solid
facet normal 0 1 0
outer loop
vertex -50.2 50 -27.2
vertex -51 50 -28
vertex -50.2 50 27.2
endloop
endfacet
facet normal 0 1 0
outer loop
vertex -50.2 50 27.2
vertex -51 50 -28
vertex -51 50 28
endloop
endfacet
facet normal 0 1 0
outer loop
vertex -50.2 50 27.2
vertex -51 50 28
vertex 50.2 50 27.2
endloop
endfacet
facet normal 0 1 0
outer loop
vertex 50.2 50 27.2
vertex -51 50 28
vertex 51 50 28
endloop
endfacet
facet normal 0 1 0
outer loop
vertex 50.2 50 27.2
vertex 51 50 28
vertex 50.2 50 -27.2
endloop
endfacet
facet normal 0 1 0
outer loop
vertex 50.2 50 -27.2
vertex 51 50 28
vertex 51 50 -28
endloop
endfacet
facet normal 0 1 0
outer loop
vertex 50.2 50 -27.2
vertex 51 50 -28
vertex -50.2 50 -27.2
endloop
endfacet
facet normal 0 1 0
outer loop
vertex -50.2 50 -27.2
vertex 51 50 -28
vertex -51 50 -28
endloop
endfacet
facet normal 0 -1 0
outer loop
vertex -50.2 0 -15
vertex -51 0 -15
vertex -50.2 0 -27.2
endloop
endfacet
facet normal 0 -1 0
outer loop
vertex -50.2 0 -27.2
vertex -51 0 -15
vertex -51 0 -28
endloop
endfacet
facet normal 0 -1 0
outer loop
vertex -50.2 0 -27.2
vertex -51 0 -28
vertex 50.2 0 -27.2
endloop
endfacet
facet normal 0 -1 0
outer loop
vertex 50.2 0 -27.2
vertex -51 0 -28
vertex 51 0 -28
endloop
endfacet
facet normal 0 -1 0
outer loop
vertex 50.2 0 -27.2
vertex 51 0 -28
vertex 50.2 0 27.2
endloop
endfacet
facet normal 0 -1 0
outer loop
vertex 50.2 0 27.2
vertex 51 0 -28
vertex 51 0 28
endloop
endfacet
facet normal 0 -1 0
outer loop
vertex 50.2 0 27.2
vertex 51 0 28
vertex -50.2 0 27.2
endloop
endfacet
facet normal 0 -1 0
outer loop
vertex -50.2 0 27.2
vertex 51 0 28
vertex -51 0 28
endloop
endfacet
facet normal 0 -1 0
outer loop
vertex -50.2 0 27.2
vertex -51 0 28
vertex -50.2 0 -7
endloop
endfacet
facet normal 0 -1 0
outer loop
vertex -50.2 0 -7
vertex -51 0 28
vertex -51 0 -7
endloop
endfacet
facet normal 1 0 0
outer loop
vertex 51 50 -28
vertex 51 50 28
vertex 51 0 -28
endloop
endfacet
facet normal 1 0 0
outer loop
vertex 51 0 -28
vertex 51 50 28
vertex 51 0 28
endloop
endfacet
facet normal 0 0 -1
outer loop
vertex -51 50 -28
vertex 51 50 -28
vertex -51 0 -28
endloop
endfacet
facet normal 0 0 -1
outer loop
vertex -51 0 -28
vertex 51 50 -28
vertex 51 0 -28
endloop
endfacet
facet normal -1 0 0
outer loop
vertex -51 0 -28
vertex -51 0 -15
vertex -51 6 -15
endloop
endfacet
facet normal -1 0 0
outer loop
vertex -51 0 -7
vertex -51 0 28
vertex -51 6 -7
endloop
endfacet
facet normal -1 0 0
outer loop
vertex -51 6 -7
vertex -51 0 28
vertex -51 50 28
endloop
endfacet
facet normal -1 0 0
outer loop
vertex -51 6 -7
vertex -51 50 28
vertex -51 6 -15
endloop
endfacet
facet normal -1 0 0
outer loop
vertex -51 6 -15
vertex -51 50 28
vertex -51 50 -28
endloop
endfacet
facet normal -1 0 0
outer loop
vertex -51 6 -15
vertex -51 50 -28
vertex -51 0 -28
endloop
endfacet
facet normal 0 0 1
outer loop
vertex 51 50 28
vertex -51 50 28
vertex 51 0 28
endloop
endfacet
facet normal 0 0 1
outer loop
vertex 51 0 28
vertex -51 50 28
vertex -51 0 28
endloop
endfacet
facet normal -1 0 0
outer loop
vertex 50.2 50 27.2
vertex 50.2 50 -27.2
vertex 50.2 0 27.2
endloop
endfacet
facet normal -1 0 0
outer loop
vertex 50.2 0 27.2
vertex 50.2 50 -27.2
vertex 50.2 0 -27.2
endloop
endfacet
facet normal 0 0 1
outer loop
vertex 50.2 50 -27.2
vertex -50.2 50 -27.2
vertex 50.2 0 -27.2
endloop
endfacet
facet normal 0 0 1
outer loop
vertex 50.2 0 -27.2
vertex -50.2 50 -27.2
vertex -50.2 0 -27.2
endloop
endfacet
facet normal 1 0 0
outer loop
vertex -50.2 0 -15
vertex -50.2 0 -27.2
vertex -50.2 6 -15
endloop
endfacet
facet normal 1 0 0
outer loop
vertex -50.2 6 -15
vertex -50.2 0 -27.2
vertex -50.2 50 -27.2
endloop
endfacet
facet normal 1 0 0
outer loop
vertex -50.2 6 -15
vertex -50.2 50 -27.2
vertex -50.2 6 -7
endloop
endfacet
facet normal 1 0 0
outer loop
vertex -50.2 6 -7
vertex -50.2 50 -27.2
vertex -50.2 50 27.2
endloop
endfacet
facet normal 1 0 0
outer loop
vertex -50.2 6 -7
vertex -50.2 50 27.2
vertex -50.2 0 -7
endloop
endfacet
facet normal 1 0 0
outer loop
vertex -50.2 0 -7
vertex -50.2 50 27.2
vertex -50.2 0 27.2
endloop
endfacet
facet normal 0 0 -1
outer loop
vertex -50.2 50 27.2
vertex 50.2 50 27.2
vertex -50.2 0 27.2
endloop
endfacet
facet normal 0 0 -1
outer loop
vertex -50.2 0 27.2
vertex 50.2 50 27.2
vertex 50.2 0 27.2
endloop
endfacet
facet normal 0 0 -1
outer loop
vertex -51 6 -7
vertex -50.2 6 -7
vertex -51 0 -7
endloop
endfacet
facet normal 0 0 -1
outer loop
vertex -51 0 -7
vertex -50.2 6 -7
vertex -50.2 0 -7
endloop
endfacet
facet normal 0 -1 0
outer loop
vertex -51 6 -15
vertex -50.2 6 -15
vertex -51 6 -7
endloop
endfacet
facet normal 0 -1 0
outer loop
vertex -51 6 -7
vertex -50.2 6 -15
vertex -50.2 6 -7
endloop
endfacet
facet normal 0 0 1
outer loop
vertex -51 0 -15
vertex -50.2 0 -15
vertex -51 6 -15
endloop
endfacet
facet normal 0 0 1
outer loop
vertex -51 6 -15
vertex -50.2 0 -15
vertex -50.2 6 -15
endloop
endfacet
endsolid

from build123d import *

# Parameters (mm, degrees)
SKETCH1_W      = 102
SKETCH1_H      = 56
SKETCH1_W_2    = 100.4
SKETCH1_H_2    = 54.4
WALLS_DEPTH    = 50
USB_HOLE_REACH = 118.996
SKETCH3_W      = 8
SKETCH3_H      = 6


with BuildPart() as part:
    # Sketch1 → WALLS (new body)
    with BuildSketch(Plane(origin=(0, 0, 0), x_dir=(1, 0, 0), z_dir=(0, 1, 0))):
        Rectangle(SKETCH1_W, SKETCH1_H)
        Rectangle(SKETCH1_W_2, SKETCH1_H_2, mode=Mode.SUBTRACT)
    extrude(amount=WALLS_DEPTH)

    # Sketch3 → USB_HOLE (cut, up to next)
    with BuildSketch(Plane.ZY.offset(51), mode=Mode.PRIVATE) as usb_hole_sk1:
        with Locations((-11, 3)):
            Rectangle(SKETCH3_W, SKETCH3_H)
    usb_hole_tool1 = extrude(usb_hole_sk1.sketch, amount=-USB_HOLE_REACH, mode=Mode.PRIVATE) & part.part
    add(usb_hole_tool1.solids().sort_by_distance((-51, 3, -11))[0], mode=Mode.SUBTRACT)


solid = part.part
